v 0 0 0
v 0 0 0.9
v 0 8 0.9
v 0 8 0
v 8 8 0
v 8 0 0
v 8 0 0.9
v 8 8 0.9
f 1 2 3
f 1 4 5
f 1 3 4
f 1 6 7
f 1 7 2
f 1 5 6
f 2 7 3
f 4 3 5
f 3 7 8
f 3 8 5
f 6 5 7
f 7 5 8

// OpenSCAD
/* Warning, this is a very basic generator with a lot of approximation 
input data : [QFN, RVX, 8x8x0.9mm, 48, , A, C04-00224A]
generated by com.zoubworld.electronics.cad.model3d.Basic
Date : Sun Feb 15 10:50:48 CET 2026
*/

//body
color("black")
translate([0,0,0])
cube([8.0,8.0,0.9], center=false);
